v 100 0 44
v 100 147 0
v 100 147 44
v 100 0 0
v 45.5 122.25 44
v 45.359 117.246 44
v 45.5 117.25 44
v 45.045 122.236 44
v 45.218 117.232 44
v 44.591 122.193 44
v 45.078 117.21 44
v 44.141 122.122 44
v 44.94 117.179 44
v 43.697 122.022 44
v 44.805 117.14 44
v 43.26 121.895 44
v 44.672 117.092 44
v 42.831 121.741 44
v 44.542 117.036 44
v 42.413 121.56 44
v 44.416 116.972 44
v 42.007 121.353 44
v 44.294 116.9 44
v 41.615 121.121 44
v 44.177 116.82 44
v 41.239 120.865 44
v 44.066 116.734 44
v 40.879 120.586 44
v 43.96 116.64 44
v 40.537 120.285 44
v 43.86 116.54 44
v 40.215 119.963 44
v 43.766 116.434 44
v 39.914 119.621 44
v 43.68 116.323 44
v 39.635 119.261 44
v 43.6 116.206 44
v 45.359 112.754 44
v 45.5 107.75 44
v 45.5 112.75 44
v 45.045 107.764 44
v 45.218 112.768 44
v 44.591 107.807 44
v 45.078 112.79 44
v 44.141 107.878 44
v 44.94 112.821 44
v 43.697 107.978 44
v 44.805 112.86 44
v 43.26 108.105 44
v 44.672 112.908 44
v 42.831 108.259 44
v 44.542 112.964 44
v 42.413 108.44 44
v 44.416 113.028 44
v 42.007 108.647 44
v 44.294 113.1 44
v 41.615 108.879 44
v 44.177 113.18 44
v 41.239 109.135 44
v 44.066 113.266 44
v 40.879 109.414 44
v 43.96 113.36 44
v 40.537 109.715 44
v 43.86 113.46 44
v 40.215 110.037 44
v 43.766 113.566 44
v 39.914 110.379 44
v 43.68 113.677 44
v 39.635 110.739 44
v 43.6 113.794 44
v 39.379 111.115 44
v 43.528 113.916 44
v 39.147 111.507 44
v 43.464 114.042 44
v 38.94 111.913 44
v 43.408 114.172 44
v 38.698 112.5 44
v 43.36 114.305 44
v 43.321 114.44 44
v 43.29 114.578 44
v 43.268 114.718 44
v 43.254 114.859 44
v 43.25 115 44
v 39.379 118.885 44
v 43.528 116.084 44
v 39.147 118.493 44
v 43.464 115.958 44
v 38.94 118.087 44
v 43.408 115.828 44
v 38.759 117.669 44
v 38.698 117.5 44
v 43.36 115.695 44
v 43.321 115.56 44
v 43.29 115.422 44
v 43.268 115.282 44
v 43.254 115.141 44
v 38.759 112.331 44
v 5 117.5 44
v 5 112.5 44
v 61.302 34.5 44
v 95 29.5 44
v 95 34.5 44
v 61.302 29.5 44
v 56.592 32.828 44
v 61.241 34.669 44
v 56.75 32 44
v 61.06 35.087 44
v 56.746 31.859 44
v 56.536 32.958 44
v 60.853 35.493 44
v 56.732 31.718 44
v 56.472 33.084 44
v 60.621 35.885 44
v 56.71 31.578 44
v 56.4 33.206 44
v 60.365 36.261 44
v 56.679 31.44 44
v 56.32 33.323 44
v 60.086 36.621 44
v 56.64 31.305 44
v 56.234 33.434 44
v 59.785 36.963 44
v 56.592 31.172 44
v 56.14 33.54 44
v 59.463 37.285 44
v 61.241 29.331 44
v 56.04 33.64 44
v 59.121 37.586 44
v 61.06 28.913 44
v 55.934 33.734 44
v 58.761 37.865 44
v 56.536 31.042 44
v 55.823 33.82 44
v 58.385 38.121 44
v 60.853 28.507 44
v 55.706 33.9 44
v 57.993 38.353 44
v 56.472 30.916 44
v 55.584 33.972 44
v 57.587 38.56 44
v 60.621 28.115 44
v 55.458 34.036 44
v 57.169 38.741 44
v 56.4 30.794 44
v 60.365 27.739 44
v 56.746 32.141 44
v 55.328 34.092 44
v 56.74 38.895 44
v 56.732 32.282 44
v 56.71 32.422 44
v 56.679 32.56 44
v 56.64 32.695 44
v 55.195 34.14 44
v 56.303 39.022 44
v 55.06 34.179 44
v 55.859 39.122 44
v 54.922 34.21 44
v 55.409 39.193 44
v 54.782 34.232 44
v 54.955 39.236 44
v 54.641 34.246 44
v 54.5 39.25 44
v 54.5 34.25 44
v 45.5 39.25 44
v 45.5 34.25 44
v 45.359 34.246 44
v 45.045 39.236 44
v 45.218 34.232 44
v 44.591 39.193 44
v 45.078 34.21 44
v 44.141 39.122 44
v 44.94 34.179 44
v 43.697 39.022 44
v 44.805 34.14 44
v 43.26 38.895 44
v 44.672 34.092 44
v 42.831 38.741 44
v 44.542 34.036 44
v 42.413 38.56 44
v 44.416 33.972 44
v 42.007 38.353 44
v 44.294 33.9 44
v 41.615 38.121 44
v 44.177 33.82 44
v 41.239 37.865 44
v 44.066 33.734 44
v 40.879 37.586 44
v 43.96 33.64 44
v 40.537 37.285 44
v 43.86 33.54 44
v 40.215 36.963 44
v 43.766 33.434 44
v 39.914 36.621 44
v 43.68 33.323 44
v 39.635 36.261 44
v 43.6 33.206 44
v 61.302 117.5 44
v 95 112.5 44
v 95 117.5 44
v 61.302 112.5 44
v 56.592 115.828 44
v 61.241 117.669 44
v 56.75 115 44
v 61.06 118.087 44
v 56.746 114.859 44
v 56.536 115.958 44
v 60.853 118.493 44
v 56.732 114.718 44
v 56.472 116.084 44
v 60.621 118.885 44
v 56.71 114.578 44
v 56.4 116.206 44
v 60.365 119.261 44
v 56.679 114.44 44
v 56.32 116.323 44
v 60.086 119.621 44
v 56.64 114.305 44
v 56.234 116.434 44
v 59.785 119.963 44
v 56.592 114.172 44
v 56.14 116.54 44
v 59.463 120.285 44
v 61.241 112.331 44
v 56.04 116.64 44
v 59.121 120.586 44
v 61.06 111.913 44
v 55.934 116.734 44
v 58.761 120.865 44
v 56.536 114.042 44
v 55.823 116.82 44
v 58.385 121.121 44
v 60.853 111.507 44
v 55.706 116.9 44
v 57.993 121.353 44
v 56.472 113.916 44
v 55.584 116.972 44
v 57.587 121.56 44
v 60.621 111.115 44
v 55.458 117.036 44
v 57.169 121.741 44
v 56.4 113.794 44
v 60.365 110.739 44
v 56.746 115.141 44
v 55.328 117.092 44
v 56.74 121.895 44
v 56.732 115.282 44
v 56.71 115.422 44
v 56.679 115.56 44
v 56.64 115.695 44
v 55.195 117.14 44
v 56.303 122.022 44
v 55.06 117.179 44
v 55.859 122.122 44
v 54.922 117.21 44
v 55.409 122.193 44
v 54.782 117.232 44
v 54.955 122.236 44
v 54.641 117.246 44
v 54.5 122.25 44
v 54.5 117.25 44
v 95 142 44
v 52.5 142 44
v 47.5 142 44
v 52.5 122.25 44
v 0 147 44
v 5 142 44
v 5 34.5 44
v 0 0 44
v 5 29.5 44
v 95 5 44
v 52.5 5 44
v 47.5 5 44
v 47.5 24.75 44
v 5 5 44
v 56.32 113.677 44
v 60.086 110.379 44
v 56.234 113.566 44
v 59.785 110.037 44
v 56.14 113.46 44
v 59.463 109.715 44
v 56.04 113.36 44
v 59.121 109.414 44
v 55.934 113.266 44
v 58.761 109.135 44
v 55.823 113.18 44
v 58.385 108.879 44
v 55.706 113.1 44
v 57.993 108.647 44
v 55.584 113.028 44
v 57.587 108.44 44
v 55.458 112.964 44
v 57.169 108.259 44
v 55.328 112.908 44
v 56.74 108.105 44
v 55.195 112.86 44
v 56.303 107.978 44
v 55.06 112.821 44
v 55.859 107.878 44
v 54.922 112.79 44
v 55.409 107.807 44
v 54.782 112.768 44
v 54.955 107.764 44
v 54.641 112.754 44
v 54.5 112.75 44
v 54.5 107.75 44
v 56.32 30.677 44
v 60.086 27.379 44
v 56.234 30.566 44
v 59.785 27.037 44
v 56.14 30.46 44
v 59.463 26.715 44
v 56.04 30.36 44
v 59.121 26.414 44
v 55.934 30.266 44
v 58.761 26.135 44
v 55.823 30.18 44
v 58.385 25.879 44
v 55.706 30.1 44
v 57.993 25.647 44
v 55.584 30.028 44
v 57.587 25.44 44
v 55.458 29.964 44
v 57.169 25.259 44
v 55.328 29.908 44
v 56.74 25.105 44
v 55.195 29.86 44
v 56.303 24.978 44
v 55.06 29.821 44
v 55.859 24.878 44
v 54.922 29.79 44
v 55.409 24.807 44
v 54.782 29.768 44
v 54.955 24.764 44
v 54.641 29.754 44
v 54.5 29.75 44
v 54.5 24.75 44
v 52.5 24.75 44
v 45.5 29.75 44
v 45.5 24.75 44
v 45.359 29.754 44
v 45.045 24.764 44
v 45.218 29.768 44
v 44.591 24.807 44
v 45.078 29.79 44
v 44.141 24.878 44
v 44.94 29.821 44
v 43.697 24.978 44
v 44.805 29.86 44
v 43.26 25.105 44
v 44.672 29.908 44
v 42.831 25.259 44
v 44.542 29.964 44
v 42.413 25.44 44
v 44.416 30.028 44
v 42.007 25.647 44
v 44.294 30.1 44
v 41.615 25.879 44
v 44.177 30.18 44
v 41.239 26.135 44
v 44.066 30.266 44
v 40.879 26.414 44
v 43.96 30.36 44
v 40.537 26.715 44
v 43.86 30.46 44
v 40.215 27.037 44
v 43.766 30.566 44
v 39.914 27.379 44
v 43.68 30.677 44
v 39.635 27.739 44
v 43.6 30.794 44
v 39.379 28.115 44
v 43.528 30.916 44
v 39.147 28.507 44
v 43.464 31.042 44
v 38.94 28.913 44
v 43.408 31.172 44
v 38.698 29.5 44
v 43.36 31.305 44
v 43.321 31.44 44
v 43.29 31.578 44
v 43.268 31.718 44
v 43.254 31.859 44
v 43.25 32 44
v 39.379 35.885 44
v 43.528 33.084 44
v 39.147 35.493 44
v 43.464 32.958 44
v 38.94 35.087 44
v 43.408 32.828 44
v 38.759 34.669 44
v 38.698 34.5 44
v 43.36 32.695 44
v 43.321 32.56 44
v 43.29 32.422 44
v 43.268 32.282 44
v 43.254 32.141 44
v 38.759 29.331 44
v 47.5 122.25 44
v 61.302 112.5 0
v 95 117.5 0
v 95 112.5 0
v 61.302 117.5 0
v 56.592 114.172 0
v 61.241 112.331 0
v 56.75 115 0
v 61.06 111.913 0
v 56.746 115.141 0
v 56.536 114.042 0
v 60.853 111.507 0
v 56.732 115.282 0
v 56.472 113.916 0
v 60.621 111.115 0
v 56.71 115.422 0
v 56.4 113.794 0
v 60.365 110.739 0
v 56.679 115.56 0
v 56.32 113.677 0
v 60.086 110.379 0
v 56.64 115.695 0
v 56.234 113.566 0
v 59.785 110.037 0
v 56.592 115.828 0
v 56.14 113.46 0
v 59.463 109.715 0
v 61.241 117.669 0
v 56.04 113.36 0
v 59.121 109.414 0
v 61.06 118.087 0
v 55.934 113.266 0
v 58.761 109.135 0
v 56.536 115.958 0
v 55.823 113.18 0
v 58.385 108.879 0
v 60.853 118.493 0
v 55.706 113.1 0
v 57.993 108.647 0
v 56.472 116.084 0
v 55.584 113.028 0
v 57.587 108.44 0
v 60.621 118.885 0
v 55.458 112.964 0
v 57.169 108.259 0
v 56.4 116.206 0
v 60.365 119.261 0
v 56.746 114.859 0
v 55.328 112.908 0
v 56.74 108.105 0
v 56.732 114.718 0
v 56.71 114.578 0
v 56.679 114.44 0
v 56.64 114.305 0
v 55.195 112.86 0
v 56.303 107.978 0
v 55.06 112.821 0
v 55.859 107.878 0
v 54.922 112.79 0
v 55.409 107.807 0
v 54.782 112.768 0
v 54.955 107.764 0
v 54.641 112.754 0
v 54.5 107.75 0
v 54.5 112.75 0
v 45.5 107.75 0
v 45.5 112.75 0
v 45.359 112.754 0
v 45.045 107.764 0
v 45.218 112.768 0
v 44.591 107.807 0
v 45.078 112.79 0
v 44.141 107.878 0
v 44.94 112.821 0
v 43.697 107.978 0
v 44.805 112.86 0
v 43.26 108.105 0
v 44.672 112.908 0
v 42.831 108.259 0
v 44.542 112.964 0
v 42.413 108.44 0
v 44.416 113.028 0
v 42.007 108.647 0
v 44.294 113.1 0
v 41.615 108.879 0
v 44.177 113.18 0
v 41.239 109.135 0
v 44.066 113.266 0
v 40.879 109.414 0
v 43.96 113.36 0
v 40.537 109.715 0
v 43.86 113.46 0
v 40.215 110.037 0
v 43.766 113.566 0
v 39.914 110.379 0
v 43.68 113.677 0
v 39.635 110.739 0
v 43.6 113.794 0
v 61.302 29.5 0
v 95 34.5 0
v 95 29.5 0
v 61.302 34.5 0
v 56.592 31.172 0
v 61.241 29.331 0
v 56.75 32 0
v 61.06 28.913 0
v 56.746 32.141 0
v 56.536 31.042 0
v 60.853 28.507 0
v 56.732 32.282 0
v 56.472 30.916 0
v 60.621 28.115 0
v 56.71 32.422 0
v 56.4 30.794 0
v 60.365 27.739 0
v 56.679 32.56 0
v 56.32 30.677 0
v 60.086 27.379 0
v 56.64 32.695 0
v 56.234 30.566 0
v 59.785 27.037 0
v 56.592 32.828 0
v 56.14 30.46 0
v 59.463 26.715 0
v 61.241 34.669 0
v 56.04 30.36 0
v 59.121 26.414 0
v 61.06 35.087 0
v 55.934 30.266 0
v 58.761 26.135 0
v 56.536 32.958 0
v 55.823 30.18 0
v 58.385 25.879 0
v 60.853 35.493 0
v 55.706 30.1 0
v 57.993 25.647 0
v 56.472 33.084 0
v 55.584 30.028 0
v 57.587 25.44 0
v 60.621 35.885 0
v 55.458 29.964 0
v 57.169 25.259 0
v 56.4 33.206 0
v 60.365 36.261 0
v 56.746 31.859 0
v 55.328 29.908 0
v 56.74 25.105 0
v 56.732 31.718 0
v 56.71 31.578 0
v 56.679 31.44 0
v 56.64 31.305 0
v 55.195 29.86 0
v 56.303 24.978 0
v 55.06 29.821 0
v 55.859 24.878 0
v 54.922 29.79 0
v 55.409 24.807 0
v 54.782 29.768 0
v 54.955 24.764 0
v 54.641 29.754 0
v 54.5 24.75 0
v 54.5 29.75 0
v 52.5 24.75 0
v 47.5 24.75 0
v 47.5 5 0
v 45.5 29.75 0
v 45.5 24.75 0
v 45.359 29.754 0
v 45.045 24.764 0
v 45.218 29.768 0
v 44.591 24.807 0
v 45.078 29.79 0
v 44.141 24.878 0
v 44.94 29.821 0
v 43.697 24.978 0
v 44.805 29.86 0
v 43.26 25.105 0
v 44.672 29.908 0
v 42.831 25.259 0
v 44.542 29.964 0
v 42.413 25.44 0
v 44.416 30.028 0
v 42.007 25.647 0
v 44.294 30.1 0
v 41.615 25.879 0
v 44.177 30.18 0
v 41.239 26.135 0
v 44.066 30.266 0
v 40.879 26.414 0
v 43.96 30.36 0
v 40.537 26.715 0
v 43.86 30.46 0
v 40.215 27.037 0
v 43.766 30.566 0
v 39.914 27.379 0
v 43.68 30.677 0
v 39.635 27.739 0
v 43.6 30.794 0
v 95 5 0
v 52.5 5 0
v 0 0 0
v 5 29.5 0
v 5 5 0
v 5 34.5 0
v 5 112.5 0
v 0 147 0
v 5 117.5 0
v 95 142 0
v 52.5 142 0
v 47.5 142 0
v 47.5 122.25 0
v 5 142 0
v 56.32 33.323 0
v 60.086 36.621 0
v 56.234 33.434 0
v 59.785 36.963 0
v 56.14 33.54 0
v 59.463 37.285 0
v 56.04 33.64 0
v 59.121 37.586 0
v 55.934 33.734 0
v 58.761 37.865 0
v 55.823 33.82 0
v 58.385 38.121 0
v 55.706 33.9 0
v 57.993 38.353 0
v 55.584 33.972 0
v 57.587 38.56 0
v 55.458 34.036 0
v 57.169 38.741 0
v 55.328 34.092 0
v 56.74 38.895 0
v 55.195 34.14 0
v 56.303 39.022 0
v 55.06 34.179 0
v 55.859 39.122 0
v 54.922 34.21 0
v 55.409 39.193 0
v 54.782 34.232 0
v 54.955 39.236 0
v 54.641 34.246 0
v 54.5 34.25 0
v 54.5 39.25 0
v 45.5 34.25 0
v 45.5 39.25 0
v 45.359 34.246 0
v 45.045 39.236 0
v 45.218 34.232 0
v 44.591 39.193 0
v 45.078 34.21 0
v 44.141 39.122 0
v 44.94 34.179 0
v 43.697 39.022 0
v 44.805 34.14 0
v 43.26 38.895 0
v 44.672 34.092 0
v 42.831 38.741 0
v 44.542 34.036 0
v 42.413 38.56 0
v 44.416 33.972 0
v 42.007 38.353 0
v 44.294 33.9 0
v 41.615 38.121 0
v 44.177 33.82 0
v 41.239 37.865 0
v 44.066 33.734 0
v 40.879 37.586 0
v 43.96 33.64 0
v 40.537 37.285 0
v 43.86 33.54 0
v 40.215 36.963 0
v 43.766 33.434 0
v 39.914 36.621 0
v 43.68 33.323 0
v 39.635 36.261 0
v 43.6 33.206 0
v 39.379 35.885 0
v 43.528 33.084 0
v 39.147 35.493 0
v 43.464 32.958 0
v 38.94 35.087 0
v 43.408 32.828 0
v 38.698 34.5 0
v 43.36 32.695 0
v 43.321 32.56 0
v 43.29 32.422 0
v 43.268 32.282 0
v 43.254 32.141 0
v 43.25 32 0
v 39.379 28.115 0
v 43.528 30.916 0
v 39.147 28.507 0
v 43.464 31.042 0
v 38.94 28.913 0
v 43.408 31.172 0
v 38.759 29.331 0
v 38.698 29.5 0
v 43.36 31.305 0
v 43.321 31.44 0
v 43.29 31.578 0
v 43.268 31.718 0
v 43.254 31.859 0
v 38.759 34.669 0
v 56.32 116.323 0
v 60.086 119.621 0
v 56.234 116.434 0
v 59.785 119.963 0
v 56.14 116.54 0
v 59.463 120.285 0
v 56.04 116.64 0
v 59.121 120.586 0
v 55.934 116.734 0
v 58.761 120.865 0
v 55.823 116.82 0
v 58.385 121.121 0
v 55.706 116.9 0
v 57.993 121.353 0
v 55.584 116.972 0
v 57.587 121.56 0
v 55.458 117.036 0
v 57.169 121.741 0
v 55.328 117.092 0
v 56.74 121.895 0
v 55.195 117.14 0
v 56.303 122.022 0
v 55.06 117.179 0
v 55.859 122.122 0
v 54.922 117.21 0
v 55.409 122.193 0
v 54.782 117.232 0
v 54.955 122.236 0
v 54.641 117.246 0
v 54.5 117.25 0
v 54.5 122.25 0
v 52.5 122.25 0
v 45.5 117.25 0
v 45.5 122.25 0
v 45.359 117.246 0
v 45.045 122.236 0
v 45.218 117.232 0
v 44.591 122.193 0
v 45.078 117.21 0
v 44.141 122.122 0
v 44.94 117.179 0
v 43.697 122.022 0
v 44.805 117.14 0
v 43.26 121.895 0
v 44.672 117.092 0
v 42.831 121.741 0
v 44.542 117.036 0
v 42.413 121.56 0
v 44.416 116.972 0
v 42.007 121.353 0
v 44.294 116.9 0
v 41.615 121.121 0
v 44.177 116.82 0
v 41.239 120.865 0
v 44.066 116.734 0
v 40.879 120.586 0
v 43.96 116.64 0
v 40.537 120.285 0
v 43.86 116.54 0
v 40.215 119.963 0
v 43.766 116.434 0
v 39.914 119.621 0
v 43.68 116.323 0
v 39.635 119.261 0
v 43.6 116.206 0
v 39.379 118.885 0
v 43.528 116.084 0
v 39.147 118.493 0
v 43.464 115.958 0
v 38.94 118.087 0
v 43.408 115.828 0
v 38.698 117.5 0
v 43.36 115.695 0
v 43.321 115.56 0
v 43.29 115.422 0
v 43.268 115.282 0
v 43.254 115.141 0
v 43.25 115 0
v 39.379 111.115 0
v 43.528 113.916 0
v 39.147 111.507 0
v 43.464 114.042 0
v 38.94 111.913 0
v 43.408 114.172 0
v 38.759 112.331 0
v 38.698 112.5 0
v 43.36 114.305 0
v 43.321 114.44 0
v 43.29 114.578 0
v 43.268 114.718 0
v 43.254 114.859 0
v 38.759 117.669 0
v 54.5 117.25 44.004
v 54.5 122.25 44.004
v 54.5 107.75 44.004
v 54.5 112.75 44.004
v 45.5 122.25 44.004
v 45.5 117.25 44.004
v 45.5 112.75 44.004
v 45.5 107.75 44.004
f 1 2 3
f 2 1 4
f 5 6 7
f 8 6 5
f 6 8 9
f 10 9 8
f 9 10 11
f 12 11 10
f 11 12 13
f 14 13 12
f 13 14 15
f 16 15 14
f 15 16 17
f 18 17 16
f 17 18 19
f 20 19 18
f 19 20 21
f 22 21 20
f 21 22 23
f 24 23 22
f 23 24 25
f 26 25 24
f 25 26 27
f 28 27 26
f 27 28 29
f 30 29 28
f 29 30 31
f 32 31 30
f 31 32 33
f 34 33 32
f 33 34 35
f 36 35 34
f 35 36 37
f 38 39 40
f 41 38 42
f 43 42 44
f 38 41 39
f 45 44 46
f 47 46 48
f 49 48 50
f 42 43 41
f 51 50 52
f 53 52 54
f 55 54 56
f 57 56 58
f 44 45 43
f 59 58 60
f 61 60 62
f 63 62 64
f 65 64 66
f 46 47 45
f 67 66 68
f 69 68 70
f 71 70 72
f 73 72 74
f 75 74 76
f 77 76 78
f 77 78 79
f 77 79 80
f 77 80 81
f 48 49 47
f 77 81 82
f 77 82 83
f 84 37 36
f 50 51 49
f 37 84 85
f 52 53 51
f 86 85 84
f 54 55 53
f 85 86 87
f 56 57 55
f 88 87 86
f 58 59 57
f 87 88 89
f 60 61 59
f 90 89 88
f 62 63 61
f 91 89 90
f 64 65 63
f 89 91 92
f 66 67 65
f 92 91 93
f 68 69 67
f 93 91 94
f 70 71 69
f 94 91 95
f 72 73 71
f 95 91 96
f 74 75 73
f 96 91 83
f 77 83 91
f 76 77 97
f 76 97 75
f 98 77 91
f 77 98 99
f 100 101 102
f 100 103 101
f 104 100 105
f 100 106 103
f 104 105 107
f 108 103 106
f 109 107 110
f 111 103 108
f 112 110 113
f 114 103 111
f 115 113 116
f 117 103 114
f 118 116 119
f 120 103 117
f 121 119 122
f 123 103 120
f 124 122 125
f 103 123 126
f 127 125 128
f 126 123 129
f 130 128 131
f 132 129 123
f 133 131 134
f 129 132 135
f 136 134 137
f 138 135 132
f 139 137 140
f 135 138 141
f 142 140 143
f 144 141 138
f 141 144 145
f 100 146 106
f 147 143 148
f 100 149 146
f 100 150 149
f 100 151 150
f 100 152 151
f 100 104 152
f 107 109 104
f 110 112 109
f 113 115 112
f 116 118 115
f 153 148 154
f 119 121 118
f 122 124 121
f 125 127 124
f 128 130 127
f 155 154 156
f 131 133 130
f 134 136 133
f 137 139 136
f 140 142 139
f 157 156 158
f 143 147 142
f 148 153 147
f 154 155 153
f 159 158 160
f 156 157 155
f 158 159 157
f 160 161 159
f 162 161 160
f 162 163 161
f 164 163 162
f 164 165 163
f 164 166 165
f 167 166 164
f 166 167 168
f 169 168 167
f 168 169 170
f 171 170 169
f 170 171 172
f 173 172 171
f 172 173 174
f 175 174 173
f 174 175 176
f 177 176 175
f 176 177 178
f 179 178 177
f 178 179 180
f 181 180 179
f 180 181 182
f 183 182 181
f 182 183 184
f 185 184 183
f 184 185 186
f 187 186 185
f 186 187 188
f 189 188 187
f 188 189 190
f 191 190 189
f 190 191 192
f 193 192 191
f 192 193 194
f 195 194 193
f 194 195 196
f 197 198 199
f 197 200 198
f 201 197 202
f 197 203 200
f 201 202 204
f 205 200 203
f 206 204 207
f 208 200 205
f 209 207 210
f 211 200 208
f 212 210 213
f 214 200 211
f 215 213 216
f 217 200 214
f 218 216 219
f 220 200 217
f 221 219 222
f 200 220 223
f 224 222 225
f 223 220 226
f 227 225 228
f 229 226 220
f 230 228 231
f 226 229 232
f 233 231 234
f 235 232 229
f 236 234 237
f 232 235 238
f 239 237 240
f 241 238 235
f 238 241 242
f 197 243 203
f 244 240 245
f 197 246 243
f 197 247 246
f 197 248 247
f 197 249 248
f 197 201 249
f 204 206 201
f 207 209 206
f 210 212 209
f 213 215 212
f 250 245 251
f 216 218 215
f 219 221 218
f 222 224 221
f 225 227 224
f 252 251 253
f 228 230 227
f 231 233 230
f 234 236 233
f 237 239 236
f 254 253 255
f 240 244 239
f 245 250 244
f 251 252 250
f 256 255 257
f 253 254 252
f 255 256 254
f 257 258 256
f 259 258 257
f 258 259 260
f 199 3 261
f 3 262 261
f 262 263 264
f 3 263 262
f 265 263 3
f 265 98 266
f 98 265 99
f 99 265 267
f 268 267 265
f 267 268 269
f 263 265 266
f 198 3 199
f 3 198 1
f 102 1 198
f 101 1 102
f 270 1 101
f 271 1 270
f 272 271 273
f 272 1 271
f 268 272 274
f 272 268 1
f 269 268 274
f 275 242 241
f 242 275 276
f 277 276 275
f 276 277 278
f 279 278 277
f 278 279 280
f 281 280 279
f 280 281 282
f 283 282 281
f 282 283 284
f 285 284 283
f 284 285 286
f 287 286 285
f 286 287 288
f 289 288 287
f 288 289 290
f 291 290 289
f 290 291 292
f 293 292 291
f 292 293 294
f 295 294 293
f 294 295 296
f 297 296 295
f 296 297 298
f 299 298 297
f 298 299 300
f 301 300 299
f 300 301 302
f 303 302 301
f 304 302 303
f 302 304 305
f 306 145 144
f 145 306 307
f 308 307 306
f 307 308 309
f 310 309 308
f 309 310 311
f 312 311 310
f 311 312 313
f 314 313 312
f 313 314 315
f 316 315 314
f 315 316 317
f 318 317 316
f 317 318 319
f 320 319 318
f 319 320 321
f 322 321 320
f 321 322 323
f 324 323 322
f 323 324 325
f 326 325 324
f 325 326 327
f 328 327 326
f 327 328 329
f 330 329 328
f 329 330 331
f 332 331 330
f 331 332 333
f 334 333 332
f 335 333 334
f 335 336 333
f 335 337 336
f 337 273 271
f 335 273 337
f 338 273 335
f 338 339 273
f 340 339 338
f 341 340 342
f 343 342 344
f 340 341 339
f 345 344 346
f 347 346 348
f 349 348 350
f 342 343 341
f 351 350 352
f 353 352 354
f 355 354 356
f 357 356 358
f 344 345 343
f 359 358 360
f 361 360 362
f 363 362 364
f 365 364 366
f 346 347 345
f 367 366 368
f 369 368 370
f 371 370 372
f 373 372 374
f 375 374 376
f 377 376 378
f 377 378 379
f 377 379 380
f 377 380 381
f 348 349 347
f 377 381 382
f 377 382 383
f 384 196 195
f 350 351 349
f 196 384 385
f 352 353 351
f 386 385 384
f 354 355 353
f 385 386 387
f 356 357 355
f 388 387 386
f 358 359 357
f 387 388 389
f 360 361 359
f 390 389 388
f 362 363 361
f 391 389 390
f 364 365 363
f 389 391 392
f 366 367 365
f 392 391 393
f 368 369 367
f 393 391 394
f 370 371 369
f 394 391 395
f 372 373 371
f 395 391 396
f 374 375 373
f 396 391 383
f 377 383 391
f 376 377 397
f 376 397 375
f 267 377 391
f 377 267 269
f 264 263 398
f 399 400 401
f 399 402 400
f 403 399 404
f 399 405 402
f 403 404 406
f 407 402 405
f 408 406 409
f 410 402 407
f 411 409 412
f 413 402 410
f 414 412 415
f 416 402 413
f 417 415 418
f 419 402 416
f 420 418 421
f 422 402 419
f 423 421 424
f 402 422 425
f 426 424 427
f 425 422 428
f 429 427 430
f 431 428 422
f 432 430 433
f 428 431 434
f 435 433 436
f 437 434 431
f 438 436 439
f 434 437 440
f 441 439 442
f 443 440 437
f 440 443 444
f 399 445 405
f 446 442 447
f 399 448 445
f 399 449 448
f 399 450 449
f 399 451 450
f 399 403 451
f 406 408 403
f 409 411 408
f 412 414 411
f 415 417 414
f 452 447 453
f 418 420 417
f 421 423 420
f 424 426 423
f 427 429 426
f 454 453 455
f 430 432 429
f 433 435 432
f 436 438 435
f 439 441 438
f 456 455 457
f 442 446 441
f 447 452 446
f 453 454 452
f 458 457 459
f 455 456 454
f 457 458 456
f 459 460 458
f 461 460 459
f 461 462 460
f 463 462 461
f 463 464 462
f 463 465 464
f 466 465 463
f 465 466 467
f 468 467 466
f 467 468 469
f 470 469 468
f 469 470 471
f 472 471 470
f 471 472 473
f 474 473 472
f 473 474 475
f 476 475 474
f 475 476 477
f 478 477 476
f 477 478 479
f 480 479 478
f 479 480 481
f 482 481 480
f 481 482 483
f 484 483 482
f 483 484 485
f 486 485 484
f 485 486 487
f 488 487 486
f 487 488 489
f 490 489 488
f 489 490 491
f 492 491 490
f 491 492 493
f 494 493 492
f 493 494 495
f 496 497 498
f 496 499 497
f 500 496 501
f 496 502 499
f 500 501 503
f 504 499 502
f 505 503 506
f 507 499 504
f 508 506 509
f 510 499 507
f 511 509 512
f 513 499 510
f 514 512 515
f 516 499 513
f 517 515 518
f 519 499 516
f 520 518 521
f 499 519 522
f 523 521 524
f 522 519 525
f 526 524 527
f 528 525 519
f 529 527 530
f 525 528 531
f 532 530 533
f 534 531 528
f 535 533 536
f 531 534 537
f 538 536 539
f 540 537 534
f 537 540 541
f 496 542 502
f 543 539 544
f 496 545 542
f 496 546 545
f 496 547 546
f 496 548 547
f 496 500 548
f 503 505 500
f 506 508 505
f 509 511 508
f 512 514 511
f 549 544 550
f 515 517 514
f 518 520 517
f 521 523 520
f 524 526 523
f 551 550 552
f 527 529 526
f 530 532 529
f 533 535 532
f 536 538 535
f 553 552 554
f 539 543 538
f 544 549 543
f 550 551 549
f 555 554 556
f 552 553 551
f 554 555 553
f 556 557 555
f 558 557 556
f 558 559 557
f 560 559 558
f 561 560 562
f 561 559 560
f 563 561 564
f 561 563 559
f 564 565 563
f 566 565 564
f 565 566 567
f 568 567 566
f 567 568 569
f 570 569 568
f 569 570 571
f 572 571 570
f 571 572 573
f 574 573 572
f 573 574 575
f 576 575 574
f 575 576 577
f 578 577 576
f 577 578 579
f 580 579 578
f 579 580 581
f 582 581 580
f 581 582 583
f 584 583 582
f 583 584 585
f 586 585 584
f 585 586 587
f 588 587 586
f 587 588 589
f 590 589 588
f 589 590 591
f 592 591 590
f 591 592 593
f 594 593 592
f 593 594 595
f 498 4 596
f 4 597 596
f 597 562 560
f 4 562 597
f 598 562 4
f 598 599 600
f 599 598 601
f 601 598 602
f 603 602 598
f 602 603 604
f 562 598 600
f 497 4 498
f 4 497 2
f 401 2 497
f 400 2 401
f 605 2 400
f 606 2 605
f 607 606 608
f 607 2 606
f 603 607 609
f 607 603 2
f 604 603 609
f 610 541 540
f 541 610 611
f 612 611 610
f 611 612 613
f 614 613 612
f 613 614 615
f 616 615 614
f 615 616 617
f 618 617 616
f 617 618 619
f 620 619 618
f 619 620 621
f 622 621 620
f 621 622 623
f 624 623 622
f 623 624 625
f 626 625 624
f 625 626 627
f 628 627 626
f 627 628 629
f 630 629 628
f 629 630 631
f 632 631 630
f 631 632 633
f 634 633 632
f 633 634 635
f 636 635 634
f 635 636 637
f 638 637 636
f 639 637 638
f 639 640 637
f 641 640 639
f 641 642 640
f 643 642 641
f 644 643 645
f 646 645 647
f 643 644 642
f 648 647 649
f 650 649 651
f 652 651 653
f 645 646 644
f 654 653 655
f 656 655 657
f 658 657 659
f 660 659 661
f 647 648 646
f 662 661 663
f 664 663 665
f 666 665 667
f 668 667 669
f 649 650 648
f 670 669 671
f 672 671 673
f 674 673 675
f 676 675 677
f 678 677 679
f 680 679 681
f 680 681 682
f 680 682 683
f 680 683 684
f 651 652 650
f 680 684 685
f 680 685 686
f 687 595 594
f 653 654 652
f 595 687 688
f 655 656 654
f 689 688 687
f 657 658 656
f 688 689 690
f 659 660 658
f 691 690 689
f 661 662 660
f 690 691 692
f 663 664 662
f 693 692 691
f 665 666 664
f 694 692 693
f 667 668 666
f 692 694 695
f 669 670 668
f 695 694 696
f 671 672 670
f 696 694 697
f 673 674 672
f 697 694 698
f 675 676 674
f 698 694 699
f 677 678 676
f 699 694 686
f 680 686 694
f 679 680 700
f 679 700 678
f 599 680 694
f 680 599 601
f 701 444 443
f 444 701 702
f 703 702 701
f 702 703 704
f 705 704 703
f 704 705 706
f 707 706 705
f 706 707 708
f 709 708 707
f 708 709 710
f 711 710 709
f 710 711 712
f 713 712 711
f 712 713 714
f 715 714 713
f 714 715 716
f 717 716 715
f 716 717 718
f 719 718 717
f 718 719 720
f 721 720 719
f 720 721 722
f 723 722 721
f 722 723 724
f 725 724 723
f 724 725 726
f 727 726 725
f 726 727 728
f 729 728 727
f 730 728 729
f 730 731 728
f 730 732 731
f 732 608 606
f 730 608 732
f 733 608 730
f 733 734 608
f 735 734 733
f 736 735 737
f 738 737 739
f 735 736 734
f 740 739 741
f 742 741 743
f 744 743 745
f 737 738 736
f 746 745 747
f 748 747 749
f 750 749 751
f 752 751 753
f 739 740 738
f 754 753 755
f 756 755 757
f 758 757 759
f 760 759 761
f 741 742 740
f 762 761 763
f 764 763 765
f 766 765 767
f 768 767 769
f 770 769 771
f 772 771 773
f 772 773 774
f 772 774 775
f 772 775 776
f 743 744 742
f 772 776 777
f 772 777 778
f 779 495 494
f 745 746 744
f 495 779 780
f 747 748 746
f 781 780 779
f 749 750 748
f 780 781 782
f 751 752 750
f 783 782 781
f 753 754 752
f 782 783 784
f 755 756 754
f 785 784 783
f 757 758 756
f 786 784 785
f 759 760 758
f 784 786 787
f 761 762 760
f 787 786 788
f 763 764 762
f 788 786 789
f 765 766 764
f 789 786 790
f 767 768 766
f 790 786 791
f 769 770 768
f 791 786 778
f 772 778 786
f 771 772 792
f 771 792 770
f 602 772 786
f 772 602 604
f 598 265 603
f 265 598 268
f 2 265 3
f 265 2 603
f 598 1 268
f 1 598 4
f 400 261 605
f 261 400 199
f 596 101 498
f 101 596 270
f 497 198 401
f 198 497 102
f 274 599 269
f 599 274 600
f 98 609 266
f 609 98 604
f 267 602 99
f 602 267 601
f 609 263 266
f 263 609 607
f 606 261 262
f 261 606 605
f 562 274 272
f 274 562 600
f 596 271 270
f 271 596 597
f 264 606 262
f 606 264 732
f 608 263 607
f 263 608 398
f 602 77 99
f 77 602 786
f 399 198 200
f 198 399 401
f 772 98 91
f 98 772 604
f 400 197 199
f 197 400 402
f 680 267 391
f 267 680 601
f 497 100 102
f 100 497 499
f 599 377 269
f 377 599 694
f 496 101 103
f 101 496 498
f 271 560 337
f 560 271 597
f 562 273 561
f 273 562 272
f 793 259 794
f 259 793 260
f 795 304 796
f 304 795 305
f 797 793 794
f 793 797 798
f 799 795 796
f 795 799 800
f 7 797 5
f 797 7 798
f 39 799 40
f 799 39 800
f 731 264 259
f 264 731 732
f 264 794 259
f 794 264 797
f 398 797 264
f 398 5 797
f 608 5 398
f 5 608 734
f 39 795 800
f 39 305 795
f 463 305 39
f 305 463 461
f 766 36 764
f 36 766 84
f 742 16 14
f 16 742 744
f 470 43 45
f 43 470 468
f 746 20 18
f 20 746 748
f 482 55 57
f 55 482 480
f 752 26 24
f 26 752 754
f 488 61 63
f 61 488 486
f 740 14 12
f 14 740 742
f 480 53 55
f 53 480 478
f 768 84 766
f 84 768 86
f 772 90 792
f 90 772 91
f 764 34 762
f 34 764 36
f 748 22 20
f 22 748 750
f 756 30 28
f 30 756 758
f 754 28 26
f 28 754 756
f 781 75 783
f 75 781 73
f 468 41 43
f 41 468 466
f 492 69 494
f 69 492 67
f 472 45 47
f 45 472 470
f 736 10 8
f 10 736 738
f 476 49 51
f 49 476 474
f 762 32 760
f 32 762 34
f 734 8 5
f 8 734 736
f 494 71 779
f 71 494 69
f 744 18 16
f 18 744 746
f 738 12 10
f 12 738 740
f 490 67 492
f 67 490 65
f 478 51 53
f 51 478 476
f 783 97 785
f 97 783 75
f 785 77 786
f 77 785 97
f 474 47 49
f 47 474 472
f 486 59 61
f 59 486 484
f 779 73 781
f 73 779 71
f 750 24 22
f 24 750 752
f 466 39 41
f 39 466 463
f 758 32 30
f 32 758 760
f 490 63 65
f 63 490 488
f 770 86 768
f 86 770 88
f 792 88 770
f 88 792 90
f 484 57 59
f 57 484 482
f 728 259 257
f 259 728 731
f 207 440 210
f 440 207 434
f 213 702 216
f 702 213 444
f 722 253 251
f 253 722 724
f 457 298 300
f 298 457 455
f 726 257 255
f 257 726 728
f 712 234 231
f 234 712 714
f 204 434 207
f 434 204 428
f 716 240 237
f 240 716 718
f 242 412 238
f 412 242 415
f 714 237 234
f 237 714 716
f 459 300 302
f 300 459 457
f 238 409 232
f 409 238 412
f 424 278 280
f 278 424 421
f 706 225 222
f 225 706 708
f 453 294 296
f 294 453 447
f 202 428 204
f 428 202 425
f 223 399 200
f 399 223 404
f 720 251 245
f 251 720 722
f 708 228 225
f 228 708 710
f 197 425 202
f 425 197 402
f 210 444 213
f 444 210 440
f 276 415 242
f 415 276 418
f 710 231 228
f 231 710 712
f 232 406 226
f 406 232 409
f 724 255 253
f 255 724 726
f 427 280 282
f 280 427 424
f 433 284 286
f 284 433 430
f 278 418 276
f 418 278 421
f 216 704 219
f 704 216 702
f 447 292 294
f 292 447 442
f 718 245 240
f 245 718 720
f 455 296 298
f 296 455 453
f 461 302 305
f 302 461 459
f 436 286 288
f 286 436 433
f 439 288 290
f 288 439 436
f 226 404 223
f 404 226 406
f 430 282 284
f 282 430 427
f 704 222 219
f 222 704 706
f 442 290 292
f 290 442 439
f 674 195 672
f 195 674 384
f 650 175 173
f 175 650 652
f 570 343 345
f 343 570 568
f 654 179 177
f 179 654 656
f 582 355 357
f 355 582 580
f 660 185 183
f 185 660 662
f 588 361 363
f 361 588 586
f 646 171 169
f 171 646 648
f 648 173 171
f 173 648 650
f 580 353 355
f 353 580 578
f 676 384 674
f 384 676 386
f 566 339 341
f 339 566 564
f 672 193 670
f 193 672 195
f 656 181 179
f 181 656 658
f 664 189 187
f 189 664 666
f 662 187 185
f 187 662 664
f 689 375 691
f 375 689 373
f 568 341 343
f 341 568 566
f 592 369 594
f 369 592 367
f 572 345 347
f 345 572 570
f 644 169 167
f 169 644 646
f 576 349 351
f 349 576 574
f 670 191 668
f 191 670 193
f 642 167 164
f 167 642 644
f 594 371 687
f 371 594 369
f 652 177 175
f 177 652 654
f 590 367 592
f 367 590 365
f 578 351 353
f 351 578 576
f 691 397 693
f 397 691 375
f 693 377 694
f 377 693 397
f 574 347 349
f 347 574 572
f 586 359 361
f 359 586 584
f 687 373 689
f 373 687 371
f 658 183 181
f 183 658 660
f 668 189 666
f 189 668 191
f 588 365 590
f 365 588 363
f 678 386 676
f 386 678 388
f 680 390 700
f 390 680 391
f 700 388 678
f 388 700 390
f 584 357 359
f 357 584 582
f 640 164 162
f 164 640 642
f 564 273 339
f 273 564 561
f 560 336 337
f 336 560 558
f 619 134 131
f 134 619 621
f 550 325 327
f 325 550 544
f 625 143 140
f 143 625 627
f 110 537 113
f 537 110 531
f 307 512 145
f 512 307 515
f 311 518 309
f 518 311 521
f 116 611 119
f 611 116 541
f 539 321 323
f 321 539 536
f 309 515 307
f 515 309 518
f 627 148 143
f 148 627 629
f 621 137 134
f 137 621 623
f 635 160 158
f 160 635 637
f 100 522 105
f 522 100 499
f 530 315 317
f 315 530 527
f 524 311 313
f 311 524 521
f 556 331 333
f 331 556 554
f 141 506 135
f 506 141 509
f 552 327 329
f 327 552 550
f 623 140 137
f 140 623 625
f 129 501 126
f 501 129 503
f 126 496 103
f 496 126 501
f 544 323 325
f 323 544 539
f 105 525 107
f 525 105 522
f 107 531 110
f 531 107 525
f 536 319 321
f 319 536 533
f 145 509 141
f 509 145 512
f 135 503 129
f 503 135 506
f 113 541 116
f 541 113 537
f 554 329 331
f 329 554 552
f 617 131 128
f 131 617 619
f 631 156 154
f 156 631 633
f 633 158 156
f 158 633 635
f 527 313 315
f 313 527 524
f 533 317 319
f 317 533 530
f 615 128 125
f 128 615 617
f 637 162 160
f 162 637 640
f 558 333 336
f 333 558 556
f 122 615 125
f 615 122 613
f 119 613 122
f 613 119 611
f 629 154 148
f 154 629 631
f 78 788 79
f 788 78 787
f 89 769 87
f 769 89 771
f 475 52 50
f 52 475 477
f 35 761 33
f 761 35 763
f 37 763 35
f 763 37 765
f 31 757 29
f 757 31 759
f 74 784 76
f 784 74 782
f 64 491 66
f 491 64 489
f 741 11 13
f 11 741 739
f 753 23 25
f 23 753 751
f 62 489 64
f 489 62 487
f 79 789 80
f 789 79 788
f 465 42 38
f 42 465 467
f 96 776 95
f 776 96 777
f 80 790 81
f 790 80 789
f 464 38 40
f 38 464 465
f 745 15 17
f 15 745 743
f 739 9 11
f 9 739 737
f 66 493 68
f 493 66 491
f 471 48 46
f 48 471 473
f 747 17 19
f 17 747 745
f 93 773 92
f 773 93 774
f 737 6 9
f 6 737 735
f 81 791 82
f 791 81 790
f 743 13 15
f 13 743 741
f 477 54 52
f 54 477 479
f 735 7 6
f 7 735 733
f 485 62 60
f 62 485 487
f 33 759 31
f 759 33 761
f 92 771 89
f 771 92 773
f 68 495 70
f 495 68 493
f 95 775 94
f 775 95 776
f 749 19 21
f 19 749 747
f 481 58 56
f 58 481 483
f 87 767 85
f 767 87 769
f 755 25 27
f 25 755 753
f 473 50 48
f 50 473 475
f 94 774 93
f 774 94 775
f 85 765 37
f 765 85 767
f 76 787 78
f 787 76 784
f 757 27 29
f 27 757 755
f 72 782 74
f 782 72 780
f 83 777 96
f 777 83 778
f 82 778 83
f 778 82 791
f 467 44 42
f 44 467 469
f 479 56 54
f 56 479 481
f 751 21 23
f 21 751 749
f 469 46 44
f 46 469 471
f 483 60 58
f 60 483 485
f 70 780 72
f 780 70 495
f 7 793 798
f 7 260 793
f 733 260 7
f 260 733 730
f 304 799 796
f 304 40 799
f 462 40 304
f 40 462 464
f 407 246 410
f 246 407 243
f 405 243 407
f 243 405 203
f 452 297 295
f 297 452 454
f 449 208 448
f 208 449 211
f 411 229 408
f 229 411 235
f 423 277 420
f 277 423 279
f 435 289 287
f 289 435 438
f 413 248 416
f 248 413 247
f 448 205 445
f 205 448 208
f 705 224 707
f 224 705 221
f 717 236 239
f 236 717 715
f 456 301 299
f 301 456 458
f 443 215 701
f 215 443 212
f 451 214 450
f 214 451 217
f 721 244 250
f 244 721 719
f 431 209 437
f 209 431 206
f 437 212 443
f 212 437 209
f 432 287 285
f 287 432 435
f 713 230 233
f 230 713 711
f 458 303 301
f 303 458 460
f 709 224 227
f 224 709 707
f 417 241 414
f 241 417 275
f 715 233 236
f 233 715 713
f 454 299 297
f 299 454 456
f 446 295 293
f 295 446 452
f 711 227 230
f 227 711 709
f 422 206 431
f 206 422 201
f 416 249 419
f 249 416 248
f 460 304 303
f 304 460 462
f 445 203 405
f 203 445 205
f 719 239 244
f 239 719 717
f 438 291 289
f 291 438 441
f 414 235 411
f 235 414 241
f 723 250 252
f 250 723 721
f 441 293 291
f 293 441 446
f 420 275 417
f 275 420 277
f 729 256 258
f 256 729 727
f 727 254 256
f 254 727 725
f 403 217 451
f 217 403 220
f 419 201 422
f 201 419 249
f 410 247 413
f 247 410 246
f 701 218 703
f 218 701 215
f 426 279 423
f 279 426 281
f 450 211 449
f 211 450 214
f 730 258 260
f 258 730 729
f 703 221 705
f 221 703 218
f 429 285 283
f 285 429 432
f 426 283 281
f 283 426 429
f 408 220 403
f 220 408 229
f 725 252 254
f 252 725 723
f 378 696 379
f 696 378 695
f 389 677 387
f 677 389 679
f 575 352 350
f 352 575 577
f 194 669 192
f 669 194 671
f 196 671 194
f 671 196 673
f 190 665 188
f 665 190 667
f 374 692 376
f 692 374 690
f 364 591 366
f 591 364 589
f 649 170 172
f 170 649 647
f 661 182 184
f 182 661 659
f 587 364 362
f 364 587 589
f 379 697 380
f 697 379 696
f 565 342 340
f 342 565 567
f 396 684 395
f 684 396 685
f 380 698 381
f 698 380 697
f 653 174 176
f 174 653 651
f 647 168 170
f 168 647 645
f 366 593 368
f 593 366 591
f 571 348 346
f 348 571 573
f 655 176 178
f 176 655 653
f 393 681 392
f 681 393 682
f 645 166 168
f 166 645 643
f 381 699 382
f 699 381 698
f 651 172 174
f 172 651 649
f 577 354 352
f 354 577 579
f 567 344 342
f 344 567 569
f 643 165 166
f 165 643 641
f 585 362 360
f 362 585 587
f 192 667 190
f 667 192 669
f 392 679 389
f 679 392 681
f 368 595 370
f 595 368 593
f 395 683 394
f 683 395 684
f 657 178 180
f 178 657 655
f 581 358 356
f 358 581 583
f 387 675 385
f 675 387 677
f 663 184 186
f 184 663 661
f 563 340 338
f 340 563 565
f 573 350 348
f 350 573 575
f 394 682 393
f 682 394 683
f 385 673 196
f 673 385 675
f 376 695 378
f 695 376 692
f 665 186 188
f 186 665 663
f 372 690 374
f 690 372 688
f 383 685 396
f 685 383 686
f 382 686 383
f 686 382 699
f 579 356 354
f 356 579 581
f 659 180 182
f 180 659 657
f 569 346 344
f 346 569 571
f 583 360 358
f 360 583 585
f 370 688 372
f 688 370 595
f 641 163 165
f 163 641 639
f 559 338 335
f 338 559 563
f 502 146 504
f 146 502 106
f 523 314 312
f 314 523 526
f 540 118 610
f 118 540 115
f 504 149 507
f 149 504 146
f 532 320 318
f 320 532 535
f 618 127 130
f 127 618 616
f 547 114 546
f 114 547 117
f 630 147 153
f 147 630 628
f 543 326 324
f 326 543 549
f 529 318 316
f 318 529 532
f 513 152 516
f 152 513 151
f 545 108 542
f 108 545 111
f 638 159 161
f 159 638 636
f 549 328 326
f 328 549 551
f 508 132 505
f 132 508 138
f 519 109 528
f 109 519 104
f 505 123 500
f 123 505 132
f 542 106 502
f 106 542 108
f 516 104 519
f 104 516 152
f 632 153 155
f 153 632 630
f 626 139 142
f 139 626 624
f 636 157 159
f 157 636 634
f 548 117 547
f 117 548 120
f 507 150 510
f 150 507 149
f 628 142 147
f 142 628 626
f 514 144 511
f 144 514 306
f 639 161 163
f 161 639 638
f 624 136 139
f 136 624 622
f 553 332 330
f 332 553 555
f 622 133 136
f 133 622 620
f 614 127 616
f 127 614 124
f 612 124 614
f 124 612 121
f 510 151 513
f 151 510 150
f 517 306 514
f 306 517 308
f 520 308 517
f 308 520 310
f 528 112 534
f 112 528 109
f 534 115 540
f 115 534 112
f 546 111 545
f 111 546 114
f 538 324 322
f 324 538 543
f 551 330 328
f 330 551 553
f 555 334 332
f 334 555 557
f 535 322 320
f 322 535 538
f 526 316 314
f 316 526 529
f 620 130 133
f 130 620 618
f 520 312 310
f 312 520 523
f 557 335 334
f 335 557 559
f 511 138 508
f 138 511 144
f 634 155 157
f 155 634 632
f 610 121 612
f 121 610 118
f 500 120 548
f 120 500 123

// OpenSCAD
//
// ktRACK61
//
//

gap1 = 0.002;
gap2 = 0.004;
th = 2;

H=53-9;


difference()
{
    union()
    {
        translate([0, 0, 0]) cube([100, 147, H]);
    }
    translate([5, 5, 0-gap1]) cube([100-5*2, 147-5*2, H+gap2]);
}
difference()
{
    union()
    {
        translate([100/2-5/2, 147-32-5/2, 0]) cube([5, 32, H]);
        translate([0, 147-32-5/2, 0]) cube([100, 5, H]);
        translate([0, 147-115-5/2, 0]) cube([100, 5, H]);
        translate([100/2-5/2, 0, 0]) cube([5, 32, H]);

        translate([100/2-4.5, 147-32-(4.5+10)/2, 0]) cube([4.5*2, (4.5+10), H+gap2]);

        translate([100/2-4.5, 147-32, 0]) cylinder(h=H, r=(4.5+10)/2, $fn=100);
        translate([100/2-4.5, 147-32-(4.5+10)/2, 0]) cube([4.5*2, (4.5+10), H]);
        translate([100/2+4.5, 147-32, 0]) cylinder(h=H, r=(4.5+10)/2, $fn=100);

        translate([100/2-4.5, 147-115, 0]) cylinder(h=H, r=(4.5+10)/2, $fn=100);
        translate([100/2-4.5, 147-115-(4.5+10)/2, 0]) cube([4.5*2, (4.5+10), H]);
        translate([100/2+4.5, 147-115, 0]) cylinder(h=H, r=(4.5+10)/2, $fn=100);

    }
    translate([100/2-4.5, 147-32, 0-gap1]) cylinder(h=H+gap2, r=4.5/2, $fn=100);
    translate([100/2-4.5, 147-32-4.5/2, 0-gap1]) cube([4.5*2, 4.5, H+gap2*2]);
    translate([100/2+4.5, 147-32, 0-gap1]) cylinder(h=H+gap2, r=4.5/2, $fn=100);

    translate([100/2-4.5, 147-115, 0-gap1]) cylinder(h=H+gap2, r=4.5/2, $fn=100);
    translate([100/2-4.5, 147-115-4.5/2, 0-gap1]) cube([4.5*2, 4.5, H+gap2]);
    translate([100/2+4.5, 147-115, 0-gap1]) cylinder(h=H+gap2, r=4.5/2, $fn=100);

}
